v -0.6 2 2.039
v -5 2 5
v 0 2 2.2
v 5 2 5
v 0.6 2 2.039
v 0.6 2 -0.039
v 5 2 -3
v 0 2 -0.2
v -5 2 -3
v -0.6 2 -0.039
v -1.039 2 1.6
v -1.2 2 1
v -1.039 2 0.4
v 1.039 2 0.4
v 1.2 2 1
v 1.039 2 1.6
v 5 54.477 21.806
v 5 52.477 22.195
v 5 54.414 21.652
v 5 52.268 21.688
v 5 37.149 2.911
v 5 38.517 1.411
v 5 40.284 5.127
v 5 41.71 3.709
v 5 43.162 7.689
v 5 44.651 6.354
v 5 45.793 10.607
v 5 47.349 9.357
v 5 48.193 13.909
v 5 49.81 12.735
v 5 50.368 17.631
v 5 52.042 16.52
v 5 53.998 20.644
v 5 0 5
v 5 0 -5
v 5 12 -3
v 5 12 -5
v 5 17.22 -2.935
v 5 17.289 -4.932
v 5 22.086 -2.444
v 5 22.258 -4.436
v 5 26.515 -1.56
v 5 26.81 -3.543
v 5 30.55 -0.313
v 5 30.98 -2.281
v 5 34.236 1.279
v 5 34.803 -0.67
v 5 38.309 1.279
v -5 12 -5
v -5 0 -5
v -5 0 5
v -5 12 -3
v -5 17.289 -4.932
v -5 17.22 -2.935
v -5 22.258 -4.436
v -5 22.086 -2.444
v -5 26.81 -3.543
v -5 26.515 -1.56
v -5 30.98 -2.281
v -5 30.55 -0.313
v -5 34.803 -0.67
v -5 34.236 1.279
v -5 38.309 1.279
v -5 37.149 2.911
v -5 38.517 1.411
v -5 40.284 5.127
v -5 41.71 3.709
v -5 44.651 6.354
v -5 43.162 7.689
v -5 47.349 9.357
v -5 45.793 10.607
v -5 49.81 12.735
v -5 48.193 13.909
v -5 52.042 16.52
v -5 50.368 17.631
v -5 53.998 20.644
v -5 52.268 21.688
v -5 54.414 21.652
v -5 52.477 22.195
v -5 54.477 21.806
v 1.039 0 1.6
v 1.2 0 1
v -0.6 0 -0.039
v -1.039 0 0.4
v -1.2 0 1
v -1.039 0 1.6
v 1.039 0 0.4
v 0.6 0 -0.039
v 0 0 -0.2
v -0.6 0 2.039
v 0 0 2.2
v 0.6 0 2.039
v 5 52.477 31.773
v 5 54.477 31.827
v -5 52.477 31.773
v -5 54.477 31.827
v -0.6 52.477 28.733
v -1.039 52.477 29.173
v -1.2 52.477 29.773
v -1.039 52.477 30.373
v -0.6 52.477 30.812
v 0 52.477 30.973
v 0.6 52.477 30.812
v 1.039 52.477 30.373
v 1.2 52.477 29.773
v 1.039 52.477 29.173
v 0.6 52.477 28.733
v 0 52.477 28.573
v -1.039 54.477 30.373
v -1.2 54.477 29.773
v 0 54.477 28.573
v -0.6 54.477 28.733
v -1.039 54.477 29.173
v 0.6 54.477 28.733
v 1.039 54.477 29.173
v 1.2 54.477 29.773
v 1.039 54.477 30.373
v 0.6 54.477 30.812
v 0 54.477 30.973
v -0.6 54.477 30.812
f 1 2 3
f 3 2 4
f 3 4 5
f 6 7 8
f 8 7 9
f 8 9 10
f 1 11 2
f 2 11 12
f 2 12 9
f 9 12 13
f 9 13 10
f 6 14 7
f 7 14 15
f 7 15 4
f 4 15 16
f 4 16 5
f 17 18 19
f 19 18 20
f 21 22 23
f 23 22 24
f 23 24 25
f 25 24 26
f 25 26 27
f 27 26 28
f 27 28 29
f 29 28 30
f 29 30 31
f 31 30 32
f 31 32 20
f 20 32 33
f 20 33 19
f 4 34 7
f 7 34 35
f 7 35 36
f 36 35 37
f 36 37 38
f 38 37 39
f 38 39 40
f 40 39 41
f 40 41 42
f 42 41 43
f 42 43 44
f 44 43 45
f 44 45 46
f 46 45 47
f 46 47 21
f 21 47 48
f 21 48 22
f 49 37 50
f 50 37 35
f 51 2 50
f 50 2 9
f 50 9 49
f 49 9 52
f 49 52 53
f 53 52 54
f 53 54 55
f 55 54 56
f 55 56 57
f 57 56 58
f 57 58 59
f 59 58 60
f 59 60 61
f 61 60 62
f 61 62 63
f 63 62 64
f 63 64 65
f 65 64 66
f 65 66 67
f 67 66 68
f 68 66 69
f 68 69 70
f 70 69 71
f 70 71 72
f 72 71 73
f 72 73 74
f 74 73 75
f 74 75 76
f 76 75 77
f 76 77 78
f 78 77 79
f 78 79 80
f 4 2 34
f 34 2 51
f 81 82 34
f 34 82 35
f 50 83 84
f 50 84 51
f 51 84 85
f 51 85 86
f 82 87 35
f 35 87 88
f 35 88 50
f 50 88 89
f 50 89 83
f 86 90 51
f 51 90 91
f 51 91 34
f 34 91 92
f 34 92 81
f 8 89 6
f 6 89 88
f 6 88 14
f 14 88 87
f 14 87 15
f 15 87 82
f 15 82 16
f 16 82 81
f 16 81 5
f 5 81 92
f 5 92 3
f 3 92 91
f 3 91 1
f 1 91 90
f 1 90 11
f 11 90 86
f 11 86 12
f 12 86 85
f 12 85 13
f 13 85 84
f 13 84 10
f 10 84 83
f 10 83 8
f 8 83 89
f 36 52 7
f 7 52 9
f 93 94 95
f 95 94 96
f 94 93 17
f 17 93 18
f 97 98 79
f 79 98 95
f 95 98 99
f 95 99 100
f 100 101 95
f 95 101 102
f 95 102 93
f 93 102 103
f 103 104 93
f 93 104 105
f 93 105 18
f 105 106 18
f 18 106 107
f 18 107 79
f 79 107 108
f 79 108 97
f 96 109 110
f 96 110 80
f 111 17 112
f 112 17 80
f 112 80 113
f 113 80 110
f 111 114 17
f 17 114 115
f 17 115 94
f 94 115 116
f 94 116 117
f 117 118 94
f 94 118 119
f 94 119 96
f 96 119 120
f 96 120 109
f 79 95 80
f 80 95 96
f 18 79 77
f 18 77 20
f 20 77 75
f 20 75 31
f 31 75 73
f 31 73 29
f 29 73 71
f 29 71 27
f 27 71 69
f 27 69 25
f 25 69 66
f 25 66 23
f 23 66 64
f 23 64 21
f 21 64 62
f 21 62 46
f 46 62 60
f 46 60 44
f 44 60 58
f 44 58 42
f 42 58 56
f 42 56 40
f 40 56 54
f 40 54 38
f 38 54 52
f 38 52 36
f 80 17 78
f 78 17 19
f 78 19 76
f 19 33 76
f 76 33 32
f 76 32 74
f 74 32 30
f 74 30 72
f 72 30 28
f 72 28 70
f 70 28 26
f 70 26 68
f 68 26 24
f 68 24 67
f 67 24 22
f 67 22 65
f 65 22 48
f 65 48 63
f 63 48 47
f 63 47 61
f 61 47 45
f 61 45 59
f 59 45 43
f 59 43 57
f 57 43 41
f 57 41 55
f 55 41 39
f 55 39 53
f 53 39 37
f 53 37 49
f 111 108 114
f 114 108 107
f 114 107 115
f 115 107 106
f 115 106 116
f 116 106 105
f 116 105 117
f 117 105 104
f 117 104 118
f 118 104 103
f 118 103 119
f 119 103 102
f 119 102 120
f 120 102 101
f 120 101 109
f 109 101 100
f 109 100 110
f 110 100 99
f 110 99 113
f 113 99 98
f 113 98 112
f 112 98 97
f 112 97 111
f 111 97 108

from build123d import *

# Parameters (mm, degrees)
SKETCH2_W                = 10
SKETCH2_H                = 10
BOSS_EXTRUDE1_DEPTH      = 2
M2_CLEARANCE_HOLE1_D     = 2.4
M2_CLEARANCE_HOLE1_DEPTH = 2
M2_CLEARANCE_HOLE1_TIP   = 0.721032743
SKETCH5_W                = 10
SKETCH5_H                = 2
BOSS_EXTRUDE2_DEPTH      = 10
SWEEP1_START             = -5
SWEEP1_DEPTH             = 10
M2_CLEARANCE_HOLE2_D     = 2.4


# Read off the part's stored shape, not the designer's step: Sweep1
with BuildPart() as part:
    # Sketch2 → Boss-Extrude1 (new body)
    with BuildSketch(Plane(origin=(0, 0, 0), x_dir=(1, 0, 0), z_dir=(0, 1, 0))):
        Rectangle(SKETCH2_W, SKETCH2_H)
    extrude(amount=BOSS_EXTRUDE1_DEPTH)

    # M2 Clearance Hole1
    with Locations(Plane(origin=(0, 0, 0), x_dir=(-1, 0, 0), z_dir=(0, -1, 0))):
        with Locations((0, -1)):
            Hole(M2_CLEARANCE_HOLE1_D / 2, depth=M2_CLEARANCE_HOLE1_DEPTH)
            with Locations((0, 0, -(M2_CLEARANCE_HOLE1_DEPTH + M2_CLEARANCE_HOLE1_TIP / 2))):  # 118° drill point
                Cone(0, M2_CLEARANCE_HOLE1_D / 2, M2_CLEARANCE_HOLE1_TIP, mode=Mode.SUBTRACT)

    # Sketch5 → Boss-Extrude2 (add)
    with BuildSketch(Plane(origin=(0, 2, 0), x_dir=(1, 0, 0), z_dir=(0, 1, 0))):
        with Locations((0, 4)):
            Rectangle(SKETCH5_W, SKETCH5_H)
    extrude(amount=BOSS_EXTRUDE2_DEPTH)

    # Sweep1 outline → Sweep1 (add)
    with BuildSketch(Plane.YZ.offset(SWEEP1_START)):
        with BuildLine():
            add(Edge.make_bspline(
                [(12, -3), (22.081437319, -3.280824846), (30.428491616, -1.29359039), (43.829554593, 7.091969611), (48.931984519, 13.47592334), (52.477312717, 22.194576498)],
                knots=[0, 0, 0, 0, 0.5, 0.5, 0.99708935, 0.99708935, 0.99708935, 0.99708935], degree=3))
            Line((12, -3), (12, -5))
            add(Edge.make_bspline(
                [(12, -5), (22.363265836, -5.280469752), (31.151391085, -3.215010639), (41.80972213, 3.477460348), (44.938271104, 6.304066685), (48.978333418, 11.413324262), (50.216569106, 13.261147564), (52.476984989, 17.242675991), (53.506405959, 19.395799121), (54.435317643, 21.703901173), (54.455920091, 21.755052947), (54.476559414, 21.806291518)],
                knots=[0, 0, 0, 0, 0.5, 0.5, 0.75, 0.75, 0.875, 0.875, 1, 1, 1.002873769, 1.002873769, 1.002873769, 1.002873769], degree=3))
            Line((54.476559414, 21.806291518), (54.476559414, 31.827443689))
            Line((54.476559414, 31.827443689), (52.477312712, 31.772556311))
            Line((52.477312712, 31.772556311), (52.477312717, 22.194576498))
        make_face()
    extrude(amount=SWEEP1_DEPTH)

    # M2 Clearance Hole2 (through all)
    with Locations(Plane(origin=(0, 52.477312712, 0), x_dir=(-1, 0, 0), z_dir=(0, -1, 0))):
        with Locations((0, -29.772556311)):
            Hole(M2_CLEARANCE_HOLE2_D / 2)


solid = part.part
